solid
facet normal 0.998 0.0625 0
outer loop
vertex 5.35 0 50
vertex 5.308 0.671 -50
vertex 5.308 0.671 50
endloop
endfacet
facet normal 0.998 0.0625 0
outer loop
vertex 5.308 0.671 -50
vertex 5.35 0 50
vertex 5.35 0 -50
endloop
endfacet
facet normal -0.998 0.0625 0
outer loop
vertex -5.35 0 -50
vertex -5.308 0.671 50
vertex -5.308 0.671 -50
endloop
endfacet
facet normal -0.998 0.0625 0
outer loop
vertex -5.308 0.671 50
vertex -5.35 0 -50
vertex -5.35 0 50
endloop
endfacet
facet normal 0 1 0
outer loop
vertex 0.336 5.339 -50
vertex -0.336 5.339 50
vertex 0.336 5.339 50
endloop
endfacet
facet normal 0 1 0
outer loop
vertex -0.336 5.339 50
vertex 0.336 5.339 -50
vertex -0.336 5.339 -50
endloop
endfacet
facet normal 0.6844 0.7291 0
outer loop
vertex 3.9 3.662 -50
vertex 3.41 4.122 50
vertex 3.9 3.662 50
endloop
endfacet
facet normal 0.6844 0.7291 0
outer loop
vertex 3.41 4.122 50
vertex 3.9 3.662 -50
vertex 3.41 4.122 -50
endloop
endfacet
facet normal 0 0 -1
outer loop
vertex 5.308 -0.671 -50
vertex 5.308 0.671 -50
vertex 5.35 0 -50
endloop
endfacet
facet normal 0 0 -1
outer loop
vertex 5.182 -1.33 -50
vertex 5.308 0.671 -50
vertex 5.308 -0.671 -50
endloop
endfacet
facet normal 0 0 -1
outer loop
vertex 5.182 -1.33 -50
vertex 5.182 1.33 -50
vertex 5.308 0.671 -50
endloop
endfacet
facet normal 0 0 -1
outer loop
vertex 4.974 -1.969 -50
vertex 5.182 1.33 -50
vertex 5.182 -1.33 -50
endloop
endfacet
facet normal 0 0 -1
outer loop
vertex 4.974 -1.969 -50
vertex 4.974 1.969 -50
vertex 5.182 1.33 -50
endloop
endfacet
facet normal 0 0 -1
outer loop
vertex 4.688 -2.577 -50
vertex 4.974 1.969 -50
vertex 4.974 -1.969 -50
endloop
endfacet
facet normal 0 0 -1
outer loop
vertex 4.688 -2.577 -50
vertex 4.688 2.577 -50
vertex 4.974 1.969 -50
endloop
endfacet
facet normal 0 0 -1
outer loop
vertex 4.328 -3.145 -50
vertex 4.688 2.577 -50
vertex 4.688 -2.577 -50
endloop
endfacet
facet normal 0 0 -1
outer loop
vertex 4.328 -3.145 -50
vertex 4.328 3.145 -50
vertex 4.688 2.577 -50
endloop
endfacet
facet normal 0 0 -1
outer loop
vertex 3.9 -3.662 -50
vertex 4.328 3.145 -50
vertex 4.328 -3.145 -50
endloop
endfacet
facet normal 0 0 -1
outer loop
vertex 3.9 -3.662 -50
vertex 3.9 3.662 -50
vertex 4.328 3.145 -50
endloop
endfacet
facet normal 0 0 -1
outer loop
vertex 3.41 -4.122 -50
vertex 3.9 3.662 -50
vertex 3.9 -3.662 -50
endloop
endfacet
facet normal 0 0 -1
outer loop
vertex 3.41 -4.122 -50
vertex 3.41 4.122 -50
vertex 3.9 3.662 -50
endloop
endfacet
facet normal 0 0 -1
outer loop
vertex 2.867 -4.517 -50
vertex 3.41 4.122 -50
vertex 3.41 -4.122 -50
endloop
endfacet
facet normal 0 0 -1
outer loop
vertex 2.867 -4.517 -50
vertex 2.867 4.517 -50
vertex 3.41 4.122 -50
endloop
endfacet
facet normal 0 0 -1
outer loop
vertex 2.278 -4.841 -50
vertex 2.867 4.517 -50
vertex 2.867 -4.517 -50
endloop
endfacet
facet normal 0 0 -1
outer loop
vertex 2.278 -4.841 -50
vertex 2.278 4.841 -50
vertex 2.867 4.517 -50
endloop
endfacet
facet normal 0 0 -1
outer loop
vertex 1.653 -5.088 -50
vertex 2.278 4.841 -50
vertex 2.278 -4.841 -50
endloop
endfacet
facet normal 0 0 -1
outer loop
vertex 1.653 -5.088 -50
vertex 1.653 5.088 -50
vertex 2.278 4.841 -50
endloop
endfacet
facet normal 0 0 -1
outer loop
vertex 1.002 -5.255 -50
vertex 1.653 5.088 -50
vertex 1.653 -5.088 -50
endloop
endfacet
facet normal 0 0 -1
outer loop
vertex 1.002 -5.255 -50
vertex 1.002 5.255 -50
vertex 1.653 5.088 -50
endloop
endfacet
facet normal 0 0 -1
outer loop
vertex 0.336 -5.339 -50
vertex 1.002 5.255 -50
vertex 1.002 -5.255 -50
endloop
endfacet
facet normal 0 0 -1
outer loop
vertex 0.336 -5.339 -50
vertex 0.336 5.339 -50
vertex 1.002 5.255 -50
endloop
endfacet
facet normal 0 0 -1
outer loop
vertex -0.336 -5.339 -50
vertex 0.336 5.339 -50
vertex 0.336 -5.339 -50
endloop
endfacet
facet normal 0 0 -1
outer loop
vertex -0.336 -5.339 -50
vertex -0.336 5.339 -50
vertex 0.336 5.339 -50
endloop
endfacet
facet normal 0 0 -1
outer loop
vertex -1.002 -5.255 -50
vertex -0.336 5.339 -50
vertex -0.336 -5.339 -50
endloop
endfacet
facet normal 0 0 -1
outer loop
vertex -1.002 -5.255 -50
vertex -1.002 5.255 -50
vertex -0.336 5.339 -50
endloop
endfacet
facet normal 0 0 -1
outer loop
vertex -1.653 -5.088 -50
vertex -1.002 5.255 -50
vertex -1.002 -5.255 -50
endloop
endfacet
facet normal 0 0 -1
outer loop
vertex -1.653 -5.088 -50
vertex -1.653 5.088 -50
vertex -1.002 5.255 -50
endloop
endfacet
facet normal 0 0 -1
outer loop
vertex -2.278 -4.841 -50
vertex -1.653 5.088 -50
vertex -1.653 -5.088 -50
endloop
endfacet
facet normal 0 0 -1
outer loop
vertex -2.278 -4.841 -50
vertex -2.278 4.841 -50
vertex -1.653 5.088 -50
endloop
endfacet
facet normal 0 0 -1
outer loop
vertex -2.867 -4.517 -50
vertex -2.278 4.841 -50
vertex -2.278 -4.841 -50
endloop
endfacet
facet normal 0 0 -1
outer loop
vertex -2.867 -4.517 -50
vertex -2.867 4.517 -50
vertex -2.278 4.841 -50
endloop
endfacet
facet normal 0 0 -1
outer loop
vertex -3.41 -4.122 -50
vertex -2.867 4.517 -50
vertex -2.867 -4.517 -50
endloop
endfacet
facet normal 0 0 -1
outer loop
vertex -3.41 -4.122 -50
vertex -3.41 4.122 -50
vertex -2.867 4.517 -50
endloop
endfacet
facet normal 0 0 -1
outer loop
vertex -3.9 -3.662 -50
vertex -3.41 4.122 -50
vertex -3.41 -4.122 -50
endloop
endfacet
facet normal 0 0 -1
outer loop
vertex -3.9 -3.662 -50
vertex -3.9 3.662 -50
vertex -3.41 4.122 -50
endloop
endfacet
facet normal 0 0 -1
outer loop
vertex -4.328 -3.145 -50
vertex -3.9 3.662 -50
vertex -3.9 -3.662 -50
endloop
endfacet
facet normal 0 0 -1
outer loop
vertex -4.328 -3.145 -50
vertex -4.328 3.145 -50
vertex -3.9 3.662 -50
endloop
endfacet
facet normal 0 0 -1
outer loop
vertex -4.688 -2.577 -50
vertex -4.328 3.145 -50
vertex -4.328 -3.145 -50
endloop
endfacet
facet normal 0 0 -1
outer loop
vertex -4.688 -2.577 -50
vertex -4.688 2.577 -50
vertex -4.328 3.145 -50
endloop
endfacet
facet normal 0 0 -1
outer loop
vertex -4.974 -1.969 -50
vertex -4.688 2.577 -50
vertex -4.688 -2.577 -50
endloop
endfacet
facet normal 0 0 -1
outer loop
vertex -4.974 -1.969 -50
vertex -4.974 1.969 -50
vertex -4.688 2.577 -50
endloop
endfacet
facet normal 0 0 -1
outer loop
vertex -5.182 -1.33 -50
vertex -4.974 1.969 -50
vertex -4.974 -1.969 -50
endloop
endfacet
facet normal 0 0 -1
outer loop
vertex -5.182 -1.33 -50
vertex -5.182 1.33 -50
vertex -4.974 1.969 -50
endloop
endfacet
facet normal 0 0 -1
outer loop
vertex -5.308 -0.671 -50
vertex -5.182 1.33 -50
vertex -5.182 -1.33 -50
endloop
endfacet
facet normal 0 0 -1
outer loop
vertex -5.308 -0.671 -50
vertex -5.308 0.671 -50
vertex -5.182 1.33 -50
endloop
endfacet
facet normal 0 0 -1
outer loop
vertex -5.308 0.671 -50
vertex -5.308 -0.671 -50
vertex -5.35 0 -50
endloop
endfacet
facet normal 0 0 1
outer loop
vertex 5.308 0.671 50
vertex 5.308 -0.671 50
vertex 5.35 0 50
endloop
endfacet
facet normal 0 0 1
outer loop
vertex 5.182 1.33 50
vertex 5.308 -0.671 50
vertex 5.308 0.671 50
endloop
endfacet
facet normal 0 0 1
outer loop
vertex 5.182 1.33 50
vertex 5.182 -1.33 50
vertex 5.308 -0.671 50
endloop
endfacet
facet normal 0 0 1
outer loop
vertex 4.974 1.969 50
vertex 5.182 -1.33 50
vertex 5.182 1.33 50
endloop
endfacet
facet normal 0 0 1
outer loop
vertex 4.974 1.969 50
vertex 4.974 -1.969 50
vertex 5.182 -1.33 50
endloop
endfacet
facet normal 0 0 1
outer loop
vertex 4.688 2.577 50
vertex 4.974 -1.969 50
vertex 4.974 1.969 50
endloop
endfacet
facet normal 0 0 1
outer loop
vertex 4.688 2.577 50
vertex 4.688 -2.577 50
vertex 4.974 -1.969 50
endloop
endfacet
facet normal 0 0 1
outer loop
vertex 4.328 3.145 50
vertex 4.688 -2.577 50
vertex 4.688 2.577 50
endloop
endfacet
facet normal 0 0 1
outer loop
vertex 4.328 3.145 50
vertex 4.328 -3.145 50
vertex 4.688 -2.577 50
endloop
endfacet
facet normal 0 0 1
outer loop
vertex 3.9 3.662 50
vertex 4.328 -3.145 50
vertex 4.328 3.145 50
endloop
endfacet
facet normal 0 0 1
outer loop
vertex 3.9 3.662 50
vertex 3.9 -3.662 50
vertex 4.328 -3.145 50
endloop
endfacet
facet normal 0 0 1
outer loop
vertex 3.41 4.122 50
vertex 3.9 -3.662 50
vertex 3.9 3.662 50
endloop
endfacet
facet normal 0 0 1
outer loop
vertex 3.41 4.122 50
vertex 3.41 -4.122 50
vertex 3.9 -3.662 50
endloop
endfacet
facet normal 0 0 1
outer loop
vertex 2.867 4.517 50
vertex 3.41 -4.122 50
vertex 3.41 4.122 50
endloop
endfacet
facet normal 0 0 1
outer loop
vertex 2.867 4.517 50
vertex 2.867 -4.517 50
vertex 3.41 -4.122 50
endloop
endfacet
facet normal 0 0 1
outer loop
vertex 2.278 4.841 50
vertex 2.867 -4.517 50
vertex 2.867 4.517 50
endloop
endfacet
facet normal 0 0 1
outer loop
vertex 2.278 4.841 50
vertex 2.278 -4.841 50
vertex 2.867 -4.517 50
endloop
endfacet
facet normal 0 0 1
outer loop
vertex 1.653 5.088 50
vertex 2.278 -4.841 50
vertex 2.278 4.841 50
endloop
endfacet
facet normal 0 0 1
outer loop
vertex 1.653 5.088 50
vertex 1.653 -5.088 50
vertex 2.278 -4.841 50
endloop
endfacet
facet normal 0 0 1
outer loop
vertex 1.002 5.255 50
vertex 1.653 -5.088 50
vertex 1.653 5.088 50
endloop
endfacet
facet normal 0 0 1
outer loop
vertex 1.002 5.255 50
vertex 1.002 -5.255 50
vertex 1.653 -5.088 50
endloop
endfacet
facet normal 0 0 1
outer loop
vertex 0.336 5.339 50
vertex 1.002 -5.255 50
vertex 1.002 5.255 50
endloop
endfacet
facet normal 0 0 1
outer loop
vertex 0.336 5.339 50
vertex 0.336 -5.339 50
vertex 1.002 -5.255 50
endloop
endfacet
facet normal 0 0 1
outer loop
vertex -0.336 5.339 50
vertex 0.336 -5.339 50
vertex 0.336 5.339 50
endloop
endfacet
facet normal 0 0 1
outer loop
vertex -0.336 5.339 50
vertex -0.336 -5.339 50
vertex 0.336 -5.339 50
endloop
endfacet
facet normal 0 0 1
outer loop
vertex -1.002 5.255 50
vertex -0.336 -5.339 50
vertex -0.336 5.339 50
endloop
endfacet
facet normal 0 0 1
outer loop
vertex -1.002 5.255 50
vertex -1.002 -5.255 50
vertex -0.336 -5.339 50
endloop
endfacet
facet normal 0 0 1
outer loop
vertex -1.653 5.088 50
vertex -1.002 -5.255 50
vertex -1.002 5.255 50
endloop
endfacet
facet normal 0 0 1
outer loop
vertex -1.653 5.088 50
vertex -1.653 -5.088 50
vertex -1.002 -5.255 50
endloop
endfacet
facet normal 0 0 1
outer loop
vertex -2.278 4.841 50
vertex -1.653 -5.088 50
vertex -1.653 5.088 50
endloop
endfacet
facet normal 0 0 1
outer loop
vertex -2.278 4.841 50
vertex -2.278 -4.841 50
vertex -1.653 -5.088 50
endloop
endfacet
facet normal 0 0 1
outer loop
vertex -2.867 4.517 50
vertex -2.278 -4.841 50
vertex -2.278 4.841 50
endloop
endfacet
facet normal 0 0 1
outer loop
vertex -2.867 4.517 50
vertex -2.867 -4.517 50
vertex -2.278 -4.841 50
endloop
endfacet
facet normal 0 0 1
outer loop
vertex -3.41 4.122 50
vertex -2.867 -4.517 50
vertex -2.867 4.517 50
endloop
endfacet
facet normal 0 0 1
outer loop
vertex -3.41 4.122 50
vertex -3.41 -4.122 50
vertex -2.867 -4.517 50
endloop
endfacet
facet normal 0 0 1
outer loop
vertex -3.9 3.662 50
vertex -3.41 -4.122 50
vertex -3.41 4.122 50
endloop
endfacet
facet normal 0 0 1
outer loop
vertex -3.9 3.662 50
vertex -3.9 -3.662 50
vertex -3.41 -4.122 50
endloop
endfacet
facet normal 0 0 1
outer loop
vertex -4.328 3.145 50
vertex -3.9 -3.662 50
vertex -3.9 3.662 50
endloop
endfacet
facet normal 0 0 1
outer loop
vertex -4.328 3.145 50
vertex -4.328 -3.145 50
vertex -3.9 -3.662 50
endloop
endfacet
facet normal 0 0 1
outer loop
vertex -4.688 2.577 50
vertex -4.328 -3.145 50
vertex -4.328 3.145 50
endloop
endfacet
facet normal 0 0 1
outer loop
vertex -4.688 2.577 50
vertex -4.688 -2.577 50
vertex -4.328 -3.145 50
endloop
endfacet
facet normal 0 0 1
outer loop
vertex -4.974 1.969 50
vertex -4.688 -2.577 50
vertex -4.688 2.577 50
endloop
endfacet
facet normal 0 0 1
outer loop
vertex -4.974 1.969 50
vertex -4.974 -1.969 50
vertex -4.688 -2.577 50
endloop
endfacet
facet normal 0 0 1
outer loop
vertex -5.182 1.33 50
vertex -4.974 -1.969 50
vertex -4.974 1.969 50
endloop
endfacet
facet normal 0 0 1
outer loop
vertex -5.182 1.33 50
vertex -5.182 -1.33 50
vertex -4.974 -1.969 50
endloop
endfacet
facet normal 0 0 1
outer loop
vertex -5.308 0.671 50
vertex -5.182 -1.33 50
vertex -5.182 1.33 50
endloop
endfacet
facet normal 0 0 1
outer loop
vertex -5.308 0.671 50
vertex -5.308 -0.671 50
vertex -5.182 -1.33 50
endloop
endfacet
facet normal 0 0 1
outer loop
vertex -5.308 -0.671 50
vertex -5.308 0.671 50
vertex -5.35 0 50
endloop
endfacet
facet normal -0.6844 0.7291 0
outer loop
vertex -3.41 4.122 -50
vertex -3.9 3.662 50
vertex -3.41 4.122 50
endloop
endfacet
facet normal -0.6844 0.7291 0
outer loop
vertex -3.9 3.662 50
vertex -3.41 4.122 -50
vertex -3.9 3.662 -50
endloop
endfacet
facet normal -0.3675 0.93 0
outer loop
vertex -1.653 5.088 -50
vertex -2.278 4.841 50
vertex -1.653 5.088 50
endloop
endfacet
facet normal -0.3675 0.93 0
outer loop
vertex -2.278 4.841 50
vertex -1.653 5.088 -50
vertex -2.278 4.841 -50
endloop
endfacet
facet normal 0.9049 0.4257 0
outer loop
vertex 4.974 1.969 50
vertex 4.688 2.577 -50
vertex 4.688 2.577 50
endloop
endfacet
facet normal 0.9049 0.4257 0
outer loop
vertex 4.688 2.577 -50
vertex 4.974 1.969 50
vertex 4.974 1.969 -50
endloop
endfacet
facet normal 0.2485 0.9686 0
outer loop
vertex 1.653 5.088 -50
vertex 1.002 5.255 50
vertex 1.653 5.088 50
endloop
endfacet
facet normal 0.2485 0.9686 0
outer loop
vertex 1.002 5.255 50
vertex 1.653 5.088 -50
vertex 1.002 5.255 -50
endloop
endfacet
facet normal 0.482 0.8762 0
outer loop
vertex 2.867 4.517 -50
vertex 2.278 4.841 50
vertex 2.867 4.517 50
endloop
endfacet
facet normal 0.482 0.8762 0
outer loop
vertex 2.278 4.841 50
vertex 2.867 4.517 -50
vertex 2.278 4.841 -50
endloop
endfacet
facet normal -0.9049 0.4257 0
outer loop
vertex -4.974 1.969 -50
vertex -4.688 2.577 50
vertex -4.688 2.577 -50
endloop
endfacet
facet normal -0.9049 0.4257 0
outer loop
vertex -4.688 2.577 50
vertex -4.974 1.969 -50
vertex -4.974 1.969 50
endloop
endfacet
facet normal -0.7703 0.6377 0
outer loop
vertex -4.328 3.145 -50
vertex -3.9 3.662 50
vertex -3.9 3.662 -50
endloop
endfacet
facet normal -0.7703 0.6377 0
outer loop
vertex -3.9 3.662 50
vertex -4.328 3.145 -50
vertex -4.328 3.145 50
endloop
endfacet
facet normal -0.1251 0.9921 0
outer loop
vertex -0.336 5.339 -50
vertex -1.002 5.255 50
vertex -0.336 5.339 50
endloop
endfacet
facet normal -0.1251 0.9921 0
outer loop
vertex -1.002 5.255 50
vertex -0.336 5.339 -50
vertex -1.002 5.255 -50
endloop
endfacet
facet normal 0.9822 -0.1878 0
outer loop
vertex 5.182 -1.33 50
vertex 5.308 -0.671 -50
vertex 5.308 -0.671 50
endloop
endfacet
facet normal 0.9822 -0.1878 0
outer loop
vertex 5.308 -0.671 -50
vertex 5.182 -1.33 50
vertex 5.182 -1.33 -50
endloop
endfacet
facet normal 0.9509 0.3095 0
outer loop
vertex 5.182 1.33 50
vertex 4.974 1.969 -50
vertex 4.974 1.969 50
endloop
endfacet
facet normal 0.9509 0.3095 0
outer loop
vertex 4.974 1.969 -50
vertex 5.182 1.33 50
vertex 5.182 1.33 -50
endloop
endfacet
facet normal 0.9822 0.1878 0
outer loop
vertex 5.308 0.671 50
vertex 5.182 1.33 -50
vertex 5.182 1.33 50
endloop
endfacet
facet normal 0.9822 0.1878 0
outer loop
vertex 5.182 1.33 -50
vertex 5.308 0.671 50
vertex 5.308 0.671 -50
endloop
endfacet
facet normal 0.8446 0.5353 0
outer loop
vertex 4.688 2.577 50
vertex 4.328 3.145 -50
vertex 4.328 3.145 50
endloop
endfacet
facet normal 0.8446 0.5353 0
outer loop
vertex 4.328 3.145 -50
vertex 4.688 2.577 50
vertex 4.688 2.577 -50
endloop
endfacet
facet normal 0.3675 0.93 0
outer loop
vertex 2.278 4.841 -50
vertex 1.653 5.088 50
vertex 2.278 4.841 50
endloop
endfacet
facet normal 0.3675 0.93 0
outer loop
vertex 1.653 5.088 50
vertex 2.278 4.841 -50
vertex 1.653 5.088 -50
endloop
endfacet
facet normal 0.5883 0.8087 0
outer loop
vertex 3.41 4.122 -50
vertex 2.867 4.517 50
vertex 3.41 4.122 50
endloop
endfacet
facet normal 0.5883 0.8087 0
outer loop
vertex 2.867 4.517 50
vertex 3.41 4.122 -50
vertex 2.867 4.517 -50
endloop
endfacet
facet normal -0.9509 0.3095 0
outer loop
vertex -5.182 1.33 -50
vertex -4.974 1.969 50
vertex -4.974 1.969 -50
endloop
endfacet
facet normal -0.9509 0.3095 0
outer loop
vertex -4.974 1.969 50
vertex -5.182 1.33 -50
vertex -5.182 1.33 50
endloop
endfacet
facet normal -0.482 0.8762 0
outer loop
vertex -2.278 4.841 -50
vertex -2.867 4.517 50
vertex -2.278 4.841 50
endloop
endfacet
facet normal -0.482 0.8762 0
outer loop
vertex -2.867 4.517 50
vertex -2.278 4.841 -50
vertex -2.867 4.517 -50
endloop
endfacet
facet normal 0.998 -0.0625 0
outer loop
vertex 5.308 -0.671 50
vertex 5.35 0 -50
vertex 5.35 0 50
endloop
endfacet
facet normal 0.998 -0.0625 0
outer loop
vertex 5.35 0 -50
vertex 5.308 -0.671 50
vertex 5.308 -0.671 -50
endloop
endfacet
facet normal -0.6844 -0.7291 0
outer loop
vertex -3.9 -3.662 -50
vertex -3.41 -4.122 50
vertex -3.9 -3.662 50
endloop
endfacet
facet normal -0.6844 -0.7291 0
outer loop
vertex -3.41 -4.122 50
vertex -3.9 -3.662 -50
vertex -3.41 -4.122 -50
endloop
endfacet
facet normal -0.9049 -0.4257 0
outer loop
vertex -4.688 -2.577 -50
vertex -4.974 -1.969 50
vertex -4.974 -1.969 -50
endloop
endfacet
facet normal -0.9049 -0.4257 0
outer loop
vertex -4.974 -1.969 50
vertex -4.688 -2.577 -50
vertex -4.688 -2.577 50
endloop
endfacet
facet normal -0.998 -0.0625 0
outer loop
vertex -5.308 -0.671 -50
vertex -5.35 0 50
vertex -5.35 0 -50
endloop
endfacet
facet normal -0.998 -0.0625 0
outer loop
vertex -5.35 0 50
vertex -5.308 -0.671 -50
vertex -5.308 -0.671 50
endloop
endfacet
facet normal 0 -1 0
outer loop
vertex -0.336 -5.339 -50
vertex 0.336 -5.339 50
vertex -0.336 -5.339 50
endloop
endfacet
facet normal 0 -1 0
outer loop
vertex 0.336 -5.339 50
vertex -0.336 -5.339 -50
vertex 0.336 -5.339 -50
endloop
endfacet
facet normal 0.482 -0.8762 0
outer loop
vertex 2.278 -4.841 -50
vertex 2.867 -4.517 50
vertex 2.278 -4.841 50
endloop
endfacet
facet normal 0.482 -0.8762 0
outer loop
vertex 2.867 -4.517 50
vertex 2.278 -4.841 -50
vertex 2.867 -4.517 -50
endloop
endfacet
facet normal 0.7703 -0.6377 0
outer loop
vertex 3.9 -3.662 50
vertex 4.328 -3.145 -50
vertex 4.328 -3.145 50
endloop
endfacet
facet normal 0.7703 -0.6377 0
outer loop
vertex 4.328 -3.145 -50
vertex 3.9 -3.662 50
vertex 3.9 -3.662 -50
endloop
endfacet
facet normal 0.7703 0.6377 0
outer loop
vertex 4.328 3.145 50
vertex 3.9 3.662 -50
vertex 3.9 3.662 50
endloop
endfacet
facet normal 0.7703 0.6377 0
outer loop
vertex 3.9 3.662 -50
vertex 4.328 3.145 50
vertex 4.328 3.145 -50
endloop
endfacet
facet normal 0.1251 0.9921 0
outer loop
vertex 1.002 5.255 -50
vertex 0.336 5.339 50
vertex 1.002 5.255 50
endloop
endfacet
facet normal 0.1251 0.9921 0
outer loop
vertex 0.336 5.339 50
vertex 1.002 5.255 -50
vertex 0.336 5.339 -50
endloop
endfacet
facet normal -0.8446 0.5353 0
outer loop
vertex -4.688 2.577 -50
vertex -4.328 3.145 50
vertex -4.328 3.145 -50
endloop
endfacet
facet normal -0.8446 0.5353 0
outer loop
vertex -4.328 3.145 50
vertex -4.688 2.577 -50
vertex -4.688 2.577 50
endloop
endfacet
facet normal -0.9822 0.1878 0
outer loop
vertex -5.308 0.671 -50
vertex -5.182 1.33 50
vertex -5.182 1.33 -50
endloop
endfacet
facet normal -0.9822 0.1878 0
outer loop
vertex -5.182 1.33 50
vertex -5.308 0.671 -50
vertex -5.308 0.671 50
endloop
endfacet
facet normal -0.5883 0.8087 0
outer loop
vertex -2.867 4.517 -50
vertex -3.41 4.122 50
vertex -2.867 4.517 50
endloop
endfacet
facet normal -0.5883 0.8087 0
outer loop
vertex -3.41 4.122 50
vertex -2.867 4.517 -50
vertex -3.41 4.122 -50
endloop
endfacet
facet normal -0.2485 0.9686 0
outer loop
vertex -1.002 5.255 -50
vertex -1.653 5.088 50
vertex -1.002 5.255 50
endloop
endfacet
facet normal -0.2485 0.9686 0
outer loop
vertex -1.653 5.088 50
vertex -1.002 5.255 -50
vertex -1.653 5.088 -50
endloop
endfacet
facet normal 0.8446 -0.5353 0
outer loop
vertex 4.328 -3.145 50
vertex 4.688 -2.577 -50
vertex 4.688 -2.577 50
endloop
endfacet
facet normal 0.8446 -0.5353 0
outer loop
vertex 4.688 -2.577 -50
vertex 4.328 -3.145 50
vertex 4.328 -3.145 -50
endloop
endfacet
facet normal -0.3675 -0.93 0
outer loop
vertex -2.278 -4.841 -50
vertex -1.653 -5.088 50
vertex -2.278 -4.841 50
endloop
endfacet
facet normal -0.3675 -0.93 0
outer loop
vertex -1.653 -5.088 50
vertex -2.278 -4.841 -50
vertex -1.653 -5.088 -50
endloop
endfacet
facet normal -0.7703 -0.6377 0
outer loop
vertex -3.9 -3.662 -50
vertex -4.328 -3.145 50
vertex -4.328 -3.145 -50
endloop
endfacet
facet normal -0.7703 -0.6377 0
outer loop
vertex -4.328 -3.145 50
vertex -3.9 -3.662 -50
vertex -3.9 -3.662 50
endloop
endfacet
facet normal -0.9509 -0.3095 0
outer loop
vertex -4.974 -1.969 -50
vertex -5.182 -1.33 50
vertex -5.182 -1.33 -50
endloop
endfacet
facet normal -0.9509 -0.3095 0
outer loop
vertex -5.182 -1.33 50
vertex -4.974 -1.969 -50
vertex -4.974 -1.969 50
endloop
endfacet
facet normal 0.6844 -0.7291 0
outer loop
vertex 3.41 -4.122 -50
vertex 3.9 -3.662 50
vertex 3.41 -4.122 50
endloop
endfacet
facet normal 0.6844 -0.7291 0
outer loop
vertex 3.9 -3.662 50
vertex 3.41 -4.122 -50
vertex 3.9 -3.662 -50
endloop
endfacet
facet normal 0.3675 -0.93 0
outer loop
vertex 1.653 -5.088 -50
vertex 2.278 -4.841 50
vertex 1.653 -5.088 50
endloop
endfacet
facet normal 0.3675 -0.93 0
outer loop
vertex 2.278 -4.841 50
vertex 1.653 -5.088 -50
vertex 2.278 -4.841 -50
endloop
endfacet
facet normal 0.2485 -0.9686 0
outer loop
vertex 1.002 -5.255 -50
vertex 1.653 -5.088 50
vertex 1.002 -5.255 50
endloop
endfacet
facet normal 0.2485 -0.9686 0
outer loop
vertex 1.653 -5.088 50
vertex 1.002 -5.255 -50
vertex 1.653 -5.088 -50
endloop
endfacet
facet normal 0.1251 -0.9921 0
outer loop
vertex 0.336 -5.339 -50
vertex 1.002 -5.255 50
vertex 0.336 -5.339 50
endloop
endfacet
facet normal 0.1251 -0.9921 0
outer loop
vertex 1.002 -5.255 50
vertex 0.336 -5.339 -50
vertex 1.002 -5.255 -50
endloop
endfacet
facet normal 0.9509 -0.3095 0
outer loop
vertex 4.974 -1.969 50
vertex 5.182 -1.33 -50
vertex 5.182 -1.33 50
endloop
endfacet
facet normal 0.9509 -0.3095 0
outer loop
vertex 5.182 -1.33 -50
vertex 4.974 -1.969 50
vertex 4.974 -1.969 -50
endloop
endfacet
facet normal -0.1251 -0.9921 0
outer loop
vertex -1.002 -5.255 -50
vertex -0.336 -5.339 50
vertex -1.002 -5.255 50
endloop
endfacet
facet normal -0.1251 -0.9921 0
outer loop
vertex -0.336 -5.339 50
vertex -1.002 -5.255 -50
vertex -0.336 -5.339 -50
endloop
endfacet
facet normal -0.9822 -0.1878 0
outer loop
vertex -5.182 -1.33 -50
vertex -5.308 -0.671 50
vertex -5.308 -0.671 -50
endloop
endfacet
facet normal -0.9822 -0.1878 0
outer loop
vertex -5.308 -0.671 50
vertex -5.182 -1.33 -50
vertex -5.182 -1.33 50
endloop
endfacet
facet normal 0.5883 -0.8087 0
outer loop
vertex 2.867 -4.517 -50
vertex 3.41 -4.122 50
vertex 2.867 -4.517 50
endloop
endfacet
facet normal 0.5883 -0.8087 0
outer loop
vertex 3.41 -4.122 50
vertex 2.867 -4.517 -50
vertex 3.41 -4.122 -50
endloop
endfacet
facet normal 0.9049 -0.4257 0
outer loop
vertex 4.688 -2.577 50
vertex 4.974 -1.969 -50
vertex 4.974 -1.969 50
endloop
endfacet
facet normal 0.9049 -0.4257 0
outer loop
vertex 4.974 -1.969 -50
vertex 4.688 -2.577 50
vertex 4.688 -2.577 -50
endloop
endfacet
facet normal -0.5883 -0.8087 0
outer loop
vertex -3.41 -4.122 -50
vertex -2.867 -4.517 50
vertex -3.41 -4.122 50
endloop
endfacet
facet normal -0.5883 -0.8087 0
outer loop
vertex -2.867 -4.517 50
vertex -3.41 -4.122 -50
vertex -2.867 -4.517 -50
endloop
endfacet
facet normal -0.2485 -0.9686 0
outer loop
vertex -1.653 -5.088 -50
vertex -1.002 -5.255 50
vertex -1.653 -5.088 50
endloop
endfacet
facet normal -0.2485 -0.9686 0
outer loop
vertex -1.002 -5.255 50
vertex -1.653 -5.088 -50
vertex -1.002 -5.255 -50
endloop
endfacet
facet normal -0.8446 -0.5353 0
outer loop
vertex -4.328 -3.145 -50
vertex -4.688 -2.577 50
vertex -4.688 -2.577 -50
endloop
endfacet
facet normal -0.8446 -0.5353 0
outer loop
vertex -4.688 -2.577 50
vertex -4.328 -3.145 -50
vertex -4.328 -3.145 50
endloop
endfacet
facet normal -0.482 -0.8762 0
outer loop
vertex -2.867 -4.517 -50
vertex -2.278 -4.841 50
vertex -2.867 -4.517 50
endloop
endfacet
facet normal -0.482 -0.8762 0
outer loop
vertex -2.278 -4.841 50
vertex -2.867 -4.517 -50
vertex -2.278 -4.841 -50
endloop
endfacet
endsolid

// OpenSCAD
$fn = 50;


difference() {
	union() {
		translate(v = [0, 0, -50.0000000000]) {
			cylinder(h = 100, r = 5.3500000000);
		}
	}
	union() {
		translate(v = [0, 0, -100.0000000000]) {
			cylinder(h = 200, r = 0);
		}
	}
}
